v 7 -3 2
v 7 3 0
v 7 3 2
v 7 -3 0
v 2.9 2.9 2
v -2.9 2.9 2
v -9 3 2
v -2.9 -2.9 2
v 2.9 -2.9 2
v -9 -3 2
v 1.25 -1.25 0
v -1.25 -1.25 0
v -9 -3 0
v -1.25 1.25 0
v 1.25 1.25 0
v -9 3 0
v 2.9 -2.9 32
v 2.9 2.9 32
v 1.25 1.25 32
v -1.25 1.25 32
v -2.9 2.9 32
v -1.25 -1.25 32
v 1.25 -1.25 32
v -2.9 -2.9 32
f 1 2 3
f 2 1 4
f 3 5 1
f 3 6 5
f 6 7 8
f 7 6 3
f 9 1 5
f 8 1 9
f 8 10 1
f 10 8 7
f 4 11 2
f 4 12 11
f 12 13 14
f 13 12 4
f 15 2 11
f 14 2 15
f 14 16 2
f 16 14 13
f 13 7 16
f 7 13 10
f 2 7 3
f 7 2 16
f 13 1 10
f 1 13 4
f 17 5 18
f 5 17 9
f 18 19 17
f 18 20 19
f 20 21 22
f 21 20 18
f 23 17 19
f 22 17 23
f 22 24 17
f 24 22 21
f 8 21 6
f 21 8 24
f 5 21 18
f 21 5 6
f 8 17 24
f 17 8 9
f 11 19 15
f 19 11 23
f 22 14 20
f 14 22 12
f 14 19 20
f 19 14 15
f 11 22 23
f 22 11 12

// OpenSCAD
// Artificial Emotion / MauMau — Sliding Tube Squared V2 (Clearance B)
// Units: millimeters
// Reconstructed from slidingtube-squared-3dprinting.stl.
// Original guide opening in laser-cut acrylic: nominal 6 x 6 mm.
// This version reduces only the tube's external square profile.

acrylic_opening = 6.0;        // Nominal square guide opening
sliding_clearance = 0.10;    // Nominal clearance on EACH side
shaft_width = acrylic_opening - 2 * sliding_clearance; // 5.80 mm

shaft_length = 30.0;         // From top of flange to tip
channel_width = 2.50;        // Square through-channel (unchanged)
flange_width = 6.0;          // Y dimension of base tab (unchanged)
flange_thickness = 2.0;      // Z thickness of base tab (unchanged)
flange_left = 6.0;           // Extension beyond original 6-mm shaft, -X
flange_right = 4.0;          // Extension beyond original 6-mm shaft, +X
original_shaft_width = 6.0;

assert(shaft_width > channel_width, "Tube width must exceed channel width");
assert(sliding_clearance >= 0, "Clearance must be nonnegative");

module sliding_tube() {
    difference() {
        union() {
            // Base tab: matches original STL exactly, -9 to +7 on X.
            translate([(flange_right - flange_left)/2, 0, flange_thickness/2])
                cube([original_shaft_width + flange_left + flange_right,
                      flange_width, flange_thickness], center=true);

            // Reduced square shaft, centred on same axis as original.
            translate([0, 0, flange_thickness + shaft_length/2])
                cube([shaft_width, shaft_width, shaft_length], center=true);
        }

        // Through-channel: unchanged square 2.5 x 2.5 mm.
        translate([0, 0, (flange_thickness + shaft_length)/2])
            cube([channel_width, channel_width,
                  flange_thickness + shaft_length + 2], center=true);
    }
}

sliding_tube();
